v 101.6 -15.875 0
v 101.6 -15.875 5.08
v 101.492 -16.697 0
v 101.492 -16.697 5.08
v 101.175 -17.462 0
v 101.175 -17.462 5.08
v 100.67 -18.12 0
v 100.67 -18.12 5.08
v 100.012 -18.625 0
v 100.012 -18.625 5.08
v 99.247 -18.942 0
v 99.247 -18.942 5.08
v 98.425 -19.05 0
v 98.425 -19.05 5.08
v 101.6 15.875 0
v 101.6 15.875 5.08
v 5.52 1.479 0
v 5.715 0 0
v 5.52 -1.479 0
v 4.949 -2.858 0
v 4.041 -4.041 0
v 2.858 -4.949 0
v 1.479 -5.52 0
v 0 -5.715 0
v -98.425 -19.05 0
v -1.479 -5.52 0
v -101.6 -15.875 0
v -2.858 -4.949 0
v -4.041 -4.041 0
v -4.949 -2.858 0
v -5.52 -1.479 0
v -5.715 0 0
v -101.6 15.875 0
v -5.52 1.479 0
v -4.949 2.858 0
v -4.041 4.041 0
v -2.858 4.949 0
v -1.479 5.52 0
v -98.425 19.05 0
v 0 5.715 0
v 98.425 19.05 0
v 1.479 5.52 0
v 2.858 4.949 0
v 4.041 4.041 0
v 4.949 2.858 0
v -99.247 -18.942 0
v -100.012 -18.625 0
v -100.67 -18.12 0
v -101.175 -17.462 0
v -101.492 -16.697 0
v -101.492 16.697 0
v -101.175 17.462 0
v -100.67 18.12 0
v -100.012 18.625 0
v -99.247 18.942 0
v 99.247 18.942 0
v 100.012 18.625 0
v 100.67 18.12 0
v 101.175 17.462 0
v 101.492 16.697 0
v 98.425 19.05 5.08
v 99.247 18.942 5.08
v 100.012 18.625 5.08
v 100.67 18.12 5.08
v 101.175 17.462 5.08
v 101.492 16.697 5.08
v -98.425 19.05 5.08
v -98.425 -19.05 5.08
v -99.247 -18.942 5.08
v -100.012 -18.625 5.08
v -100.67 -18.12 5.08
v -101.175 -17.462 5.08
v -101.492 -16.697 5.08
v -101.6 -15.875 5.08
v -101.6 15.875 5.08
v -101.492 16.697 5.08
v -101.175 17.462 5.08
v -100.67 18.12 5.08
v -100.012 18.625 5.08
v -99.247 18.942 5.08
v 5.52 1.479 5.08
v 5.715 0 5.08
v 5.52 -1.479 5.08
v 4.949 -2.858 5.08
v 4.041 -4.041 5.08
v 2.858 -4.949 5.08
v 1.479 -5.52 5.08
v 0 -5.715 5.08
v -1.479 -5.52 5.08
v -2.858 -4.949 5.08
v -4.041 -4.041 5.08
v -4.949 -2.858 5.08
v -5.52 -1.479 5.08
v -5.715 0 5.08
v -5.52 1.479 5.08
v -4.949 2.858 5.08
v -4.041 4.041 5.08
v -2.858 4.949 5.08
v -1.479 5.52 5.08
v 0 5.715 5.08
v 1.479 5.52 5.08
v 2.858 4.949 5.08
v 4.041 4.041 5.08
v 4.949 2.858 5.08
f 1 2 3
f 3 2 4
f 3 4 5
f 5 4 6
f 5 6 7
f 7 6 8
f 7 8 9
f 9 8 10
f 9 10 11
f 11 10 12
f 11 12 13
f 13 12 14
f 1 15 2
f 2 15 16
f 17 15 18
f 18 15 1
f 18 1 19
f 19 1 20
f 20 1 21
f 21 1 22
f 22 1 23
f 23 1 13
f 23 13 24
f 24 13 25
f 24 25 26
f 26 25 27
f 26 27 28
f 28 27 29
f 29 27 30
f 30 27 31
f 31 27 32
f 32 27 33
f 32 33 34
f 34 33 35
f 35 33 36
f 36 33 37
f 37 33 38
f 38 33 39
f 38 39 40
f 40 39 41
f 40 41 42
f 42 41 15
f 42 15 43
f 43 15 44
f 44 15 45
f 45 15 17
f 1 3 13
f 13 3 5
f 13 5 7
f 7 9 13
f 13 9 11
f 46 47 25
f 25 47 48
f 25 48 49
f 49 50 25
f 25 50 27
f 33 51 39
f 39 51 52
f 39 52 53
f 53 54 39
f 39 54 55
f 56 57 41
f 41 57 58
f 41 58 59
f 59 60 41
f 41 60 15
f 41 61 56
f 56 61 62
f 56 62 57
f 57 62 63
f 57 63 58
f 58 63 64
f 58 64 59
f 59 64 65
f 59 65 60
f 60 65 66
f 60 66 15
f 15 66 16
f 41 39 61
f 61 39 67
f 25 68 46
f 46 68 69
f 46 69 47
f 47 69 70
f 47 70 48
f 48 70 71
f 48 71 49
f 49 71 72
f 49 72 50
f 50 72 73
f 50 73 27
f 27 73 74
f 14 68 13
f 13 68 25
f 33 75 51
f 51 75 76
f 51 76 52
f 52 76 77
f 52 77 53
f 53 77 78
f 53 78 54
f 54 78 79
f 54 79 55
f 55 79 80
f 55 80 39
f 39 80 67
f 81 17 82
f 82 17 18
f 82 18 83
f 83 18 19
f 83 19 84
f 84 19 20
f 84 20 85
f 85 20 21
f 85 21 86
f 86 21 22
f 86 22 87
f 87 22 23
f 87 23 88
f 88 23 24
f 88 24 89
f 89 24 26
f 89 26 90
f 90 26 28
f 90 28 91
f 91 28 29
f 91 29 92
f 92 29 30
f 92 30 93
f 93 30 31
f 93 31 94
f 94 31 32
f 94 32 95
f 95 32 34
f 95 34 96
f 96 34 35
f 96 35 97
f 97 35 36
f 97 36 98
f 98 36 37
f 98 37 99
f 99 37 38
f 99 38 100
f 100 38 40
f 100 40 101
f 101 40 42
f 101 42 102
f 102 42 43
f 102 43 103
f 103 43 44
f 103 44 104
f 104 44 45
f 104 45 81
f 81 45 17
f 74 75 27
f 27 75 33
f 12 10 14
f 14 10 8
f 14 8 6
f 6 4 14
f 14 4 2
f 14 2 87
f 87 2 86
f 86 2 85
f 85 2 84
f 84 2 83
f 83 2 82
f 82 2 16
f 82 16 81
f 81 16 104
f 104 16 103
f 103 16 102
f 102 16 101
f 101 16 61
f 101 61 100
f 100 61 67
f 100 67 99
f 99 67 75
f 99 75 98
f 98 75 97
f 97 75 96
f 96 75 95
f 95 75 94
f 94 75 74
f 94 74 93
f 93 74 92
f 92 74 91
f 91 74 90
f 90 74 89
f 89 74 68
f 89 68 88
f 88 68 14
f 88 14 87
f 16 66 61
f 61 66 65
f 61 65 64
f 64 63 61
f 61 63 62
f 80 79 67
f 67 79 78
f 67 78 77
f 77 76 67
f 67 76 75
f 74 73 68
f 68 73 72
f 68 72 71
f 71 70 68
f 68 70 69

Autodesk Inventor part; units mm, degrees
ref_plane "YZ Plane" through (0, 0, 0) normal (1, 0, 0) x (0, 1, 0)
ref_plane "XZ Plane" through (0, 0, 0) normal (0, 1, 0) x (-1, 0, 0)
ref_plane "XY Plane" through (0, 0, 0) normal (0, 0, 1) x (1, 0, 0)
sketch "Sketch1" plane through (0, 0, 0) normal (0, 0, 1) x (1, 0, 0)
  line L0 (-101.6, -19.05) -> (101.6, -19.05)
  line L1 (101.6, -19.05) -> (101.6, 19.05)
  line L2 (101.6, 19.05) -> (-101.6, 19.05)
  line L3 (-101.6, 19.05) -> (-101.6, -19.05)
  line L4 (-101.6, -19.05) -> (101.6, 19.05) construction
  line L5 (101.6, -19.05) -> (-101.6, 19.05) construction
  circle A0 centre (0, 0) radius 5.715
  dimension "d0" = 203.2
  dimension "d1" = 38.1
  dimension "d2" = 11.43
extrude "Extrusion1" add sketch "Sketch1" along normal blind 5.08
fillet "Fillet1" radius 3.175 4 edges at (-101.6, 19.05, 2.54) (-101.6, -19.05, 2.54) (101.6, 19.05, 2.54) (101.6, -19.05, 2.54)
properties part number "Stress Tester Sample"
